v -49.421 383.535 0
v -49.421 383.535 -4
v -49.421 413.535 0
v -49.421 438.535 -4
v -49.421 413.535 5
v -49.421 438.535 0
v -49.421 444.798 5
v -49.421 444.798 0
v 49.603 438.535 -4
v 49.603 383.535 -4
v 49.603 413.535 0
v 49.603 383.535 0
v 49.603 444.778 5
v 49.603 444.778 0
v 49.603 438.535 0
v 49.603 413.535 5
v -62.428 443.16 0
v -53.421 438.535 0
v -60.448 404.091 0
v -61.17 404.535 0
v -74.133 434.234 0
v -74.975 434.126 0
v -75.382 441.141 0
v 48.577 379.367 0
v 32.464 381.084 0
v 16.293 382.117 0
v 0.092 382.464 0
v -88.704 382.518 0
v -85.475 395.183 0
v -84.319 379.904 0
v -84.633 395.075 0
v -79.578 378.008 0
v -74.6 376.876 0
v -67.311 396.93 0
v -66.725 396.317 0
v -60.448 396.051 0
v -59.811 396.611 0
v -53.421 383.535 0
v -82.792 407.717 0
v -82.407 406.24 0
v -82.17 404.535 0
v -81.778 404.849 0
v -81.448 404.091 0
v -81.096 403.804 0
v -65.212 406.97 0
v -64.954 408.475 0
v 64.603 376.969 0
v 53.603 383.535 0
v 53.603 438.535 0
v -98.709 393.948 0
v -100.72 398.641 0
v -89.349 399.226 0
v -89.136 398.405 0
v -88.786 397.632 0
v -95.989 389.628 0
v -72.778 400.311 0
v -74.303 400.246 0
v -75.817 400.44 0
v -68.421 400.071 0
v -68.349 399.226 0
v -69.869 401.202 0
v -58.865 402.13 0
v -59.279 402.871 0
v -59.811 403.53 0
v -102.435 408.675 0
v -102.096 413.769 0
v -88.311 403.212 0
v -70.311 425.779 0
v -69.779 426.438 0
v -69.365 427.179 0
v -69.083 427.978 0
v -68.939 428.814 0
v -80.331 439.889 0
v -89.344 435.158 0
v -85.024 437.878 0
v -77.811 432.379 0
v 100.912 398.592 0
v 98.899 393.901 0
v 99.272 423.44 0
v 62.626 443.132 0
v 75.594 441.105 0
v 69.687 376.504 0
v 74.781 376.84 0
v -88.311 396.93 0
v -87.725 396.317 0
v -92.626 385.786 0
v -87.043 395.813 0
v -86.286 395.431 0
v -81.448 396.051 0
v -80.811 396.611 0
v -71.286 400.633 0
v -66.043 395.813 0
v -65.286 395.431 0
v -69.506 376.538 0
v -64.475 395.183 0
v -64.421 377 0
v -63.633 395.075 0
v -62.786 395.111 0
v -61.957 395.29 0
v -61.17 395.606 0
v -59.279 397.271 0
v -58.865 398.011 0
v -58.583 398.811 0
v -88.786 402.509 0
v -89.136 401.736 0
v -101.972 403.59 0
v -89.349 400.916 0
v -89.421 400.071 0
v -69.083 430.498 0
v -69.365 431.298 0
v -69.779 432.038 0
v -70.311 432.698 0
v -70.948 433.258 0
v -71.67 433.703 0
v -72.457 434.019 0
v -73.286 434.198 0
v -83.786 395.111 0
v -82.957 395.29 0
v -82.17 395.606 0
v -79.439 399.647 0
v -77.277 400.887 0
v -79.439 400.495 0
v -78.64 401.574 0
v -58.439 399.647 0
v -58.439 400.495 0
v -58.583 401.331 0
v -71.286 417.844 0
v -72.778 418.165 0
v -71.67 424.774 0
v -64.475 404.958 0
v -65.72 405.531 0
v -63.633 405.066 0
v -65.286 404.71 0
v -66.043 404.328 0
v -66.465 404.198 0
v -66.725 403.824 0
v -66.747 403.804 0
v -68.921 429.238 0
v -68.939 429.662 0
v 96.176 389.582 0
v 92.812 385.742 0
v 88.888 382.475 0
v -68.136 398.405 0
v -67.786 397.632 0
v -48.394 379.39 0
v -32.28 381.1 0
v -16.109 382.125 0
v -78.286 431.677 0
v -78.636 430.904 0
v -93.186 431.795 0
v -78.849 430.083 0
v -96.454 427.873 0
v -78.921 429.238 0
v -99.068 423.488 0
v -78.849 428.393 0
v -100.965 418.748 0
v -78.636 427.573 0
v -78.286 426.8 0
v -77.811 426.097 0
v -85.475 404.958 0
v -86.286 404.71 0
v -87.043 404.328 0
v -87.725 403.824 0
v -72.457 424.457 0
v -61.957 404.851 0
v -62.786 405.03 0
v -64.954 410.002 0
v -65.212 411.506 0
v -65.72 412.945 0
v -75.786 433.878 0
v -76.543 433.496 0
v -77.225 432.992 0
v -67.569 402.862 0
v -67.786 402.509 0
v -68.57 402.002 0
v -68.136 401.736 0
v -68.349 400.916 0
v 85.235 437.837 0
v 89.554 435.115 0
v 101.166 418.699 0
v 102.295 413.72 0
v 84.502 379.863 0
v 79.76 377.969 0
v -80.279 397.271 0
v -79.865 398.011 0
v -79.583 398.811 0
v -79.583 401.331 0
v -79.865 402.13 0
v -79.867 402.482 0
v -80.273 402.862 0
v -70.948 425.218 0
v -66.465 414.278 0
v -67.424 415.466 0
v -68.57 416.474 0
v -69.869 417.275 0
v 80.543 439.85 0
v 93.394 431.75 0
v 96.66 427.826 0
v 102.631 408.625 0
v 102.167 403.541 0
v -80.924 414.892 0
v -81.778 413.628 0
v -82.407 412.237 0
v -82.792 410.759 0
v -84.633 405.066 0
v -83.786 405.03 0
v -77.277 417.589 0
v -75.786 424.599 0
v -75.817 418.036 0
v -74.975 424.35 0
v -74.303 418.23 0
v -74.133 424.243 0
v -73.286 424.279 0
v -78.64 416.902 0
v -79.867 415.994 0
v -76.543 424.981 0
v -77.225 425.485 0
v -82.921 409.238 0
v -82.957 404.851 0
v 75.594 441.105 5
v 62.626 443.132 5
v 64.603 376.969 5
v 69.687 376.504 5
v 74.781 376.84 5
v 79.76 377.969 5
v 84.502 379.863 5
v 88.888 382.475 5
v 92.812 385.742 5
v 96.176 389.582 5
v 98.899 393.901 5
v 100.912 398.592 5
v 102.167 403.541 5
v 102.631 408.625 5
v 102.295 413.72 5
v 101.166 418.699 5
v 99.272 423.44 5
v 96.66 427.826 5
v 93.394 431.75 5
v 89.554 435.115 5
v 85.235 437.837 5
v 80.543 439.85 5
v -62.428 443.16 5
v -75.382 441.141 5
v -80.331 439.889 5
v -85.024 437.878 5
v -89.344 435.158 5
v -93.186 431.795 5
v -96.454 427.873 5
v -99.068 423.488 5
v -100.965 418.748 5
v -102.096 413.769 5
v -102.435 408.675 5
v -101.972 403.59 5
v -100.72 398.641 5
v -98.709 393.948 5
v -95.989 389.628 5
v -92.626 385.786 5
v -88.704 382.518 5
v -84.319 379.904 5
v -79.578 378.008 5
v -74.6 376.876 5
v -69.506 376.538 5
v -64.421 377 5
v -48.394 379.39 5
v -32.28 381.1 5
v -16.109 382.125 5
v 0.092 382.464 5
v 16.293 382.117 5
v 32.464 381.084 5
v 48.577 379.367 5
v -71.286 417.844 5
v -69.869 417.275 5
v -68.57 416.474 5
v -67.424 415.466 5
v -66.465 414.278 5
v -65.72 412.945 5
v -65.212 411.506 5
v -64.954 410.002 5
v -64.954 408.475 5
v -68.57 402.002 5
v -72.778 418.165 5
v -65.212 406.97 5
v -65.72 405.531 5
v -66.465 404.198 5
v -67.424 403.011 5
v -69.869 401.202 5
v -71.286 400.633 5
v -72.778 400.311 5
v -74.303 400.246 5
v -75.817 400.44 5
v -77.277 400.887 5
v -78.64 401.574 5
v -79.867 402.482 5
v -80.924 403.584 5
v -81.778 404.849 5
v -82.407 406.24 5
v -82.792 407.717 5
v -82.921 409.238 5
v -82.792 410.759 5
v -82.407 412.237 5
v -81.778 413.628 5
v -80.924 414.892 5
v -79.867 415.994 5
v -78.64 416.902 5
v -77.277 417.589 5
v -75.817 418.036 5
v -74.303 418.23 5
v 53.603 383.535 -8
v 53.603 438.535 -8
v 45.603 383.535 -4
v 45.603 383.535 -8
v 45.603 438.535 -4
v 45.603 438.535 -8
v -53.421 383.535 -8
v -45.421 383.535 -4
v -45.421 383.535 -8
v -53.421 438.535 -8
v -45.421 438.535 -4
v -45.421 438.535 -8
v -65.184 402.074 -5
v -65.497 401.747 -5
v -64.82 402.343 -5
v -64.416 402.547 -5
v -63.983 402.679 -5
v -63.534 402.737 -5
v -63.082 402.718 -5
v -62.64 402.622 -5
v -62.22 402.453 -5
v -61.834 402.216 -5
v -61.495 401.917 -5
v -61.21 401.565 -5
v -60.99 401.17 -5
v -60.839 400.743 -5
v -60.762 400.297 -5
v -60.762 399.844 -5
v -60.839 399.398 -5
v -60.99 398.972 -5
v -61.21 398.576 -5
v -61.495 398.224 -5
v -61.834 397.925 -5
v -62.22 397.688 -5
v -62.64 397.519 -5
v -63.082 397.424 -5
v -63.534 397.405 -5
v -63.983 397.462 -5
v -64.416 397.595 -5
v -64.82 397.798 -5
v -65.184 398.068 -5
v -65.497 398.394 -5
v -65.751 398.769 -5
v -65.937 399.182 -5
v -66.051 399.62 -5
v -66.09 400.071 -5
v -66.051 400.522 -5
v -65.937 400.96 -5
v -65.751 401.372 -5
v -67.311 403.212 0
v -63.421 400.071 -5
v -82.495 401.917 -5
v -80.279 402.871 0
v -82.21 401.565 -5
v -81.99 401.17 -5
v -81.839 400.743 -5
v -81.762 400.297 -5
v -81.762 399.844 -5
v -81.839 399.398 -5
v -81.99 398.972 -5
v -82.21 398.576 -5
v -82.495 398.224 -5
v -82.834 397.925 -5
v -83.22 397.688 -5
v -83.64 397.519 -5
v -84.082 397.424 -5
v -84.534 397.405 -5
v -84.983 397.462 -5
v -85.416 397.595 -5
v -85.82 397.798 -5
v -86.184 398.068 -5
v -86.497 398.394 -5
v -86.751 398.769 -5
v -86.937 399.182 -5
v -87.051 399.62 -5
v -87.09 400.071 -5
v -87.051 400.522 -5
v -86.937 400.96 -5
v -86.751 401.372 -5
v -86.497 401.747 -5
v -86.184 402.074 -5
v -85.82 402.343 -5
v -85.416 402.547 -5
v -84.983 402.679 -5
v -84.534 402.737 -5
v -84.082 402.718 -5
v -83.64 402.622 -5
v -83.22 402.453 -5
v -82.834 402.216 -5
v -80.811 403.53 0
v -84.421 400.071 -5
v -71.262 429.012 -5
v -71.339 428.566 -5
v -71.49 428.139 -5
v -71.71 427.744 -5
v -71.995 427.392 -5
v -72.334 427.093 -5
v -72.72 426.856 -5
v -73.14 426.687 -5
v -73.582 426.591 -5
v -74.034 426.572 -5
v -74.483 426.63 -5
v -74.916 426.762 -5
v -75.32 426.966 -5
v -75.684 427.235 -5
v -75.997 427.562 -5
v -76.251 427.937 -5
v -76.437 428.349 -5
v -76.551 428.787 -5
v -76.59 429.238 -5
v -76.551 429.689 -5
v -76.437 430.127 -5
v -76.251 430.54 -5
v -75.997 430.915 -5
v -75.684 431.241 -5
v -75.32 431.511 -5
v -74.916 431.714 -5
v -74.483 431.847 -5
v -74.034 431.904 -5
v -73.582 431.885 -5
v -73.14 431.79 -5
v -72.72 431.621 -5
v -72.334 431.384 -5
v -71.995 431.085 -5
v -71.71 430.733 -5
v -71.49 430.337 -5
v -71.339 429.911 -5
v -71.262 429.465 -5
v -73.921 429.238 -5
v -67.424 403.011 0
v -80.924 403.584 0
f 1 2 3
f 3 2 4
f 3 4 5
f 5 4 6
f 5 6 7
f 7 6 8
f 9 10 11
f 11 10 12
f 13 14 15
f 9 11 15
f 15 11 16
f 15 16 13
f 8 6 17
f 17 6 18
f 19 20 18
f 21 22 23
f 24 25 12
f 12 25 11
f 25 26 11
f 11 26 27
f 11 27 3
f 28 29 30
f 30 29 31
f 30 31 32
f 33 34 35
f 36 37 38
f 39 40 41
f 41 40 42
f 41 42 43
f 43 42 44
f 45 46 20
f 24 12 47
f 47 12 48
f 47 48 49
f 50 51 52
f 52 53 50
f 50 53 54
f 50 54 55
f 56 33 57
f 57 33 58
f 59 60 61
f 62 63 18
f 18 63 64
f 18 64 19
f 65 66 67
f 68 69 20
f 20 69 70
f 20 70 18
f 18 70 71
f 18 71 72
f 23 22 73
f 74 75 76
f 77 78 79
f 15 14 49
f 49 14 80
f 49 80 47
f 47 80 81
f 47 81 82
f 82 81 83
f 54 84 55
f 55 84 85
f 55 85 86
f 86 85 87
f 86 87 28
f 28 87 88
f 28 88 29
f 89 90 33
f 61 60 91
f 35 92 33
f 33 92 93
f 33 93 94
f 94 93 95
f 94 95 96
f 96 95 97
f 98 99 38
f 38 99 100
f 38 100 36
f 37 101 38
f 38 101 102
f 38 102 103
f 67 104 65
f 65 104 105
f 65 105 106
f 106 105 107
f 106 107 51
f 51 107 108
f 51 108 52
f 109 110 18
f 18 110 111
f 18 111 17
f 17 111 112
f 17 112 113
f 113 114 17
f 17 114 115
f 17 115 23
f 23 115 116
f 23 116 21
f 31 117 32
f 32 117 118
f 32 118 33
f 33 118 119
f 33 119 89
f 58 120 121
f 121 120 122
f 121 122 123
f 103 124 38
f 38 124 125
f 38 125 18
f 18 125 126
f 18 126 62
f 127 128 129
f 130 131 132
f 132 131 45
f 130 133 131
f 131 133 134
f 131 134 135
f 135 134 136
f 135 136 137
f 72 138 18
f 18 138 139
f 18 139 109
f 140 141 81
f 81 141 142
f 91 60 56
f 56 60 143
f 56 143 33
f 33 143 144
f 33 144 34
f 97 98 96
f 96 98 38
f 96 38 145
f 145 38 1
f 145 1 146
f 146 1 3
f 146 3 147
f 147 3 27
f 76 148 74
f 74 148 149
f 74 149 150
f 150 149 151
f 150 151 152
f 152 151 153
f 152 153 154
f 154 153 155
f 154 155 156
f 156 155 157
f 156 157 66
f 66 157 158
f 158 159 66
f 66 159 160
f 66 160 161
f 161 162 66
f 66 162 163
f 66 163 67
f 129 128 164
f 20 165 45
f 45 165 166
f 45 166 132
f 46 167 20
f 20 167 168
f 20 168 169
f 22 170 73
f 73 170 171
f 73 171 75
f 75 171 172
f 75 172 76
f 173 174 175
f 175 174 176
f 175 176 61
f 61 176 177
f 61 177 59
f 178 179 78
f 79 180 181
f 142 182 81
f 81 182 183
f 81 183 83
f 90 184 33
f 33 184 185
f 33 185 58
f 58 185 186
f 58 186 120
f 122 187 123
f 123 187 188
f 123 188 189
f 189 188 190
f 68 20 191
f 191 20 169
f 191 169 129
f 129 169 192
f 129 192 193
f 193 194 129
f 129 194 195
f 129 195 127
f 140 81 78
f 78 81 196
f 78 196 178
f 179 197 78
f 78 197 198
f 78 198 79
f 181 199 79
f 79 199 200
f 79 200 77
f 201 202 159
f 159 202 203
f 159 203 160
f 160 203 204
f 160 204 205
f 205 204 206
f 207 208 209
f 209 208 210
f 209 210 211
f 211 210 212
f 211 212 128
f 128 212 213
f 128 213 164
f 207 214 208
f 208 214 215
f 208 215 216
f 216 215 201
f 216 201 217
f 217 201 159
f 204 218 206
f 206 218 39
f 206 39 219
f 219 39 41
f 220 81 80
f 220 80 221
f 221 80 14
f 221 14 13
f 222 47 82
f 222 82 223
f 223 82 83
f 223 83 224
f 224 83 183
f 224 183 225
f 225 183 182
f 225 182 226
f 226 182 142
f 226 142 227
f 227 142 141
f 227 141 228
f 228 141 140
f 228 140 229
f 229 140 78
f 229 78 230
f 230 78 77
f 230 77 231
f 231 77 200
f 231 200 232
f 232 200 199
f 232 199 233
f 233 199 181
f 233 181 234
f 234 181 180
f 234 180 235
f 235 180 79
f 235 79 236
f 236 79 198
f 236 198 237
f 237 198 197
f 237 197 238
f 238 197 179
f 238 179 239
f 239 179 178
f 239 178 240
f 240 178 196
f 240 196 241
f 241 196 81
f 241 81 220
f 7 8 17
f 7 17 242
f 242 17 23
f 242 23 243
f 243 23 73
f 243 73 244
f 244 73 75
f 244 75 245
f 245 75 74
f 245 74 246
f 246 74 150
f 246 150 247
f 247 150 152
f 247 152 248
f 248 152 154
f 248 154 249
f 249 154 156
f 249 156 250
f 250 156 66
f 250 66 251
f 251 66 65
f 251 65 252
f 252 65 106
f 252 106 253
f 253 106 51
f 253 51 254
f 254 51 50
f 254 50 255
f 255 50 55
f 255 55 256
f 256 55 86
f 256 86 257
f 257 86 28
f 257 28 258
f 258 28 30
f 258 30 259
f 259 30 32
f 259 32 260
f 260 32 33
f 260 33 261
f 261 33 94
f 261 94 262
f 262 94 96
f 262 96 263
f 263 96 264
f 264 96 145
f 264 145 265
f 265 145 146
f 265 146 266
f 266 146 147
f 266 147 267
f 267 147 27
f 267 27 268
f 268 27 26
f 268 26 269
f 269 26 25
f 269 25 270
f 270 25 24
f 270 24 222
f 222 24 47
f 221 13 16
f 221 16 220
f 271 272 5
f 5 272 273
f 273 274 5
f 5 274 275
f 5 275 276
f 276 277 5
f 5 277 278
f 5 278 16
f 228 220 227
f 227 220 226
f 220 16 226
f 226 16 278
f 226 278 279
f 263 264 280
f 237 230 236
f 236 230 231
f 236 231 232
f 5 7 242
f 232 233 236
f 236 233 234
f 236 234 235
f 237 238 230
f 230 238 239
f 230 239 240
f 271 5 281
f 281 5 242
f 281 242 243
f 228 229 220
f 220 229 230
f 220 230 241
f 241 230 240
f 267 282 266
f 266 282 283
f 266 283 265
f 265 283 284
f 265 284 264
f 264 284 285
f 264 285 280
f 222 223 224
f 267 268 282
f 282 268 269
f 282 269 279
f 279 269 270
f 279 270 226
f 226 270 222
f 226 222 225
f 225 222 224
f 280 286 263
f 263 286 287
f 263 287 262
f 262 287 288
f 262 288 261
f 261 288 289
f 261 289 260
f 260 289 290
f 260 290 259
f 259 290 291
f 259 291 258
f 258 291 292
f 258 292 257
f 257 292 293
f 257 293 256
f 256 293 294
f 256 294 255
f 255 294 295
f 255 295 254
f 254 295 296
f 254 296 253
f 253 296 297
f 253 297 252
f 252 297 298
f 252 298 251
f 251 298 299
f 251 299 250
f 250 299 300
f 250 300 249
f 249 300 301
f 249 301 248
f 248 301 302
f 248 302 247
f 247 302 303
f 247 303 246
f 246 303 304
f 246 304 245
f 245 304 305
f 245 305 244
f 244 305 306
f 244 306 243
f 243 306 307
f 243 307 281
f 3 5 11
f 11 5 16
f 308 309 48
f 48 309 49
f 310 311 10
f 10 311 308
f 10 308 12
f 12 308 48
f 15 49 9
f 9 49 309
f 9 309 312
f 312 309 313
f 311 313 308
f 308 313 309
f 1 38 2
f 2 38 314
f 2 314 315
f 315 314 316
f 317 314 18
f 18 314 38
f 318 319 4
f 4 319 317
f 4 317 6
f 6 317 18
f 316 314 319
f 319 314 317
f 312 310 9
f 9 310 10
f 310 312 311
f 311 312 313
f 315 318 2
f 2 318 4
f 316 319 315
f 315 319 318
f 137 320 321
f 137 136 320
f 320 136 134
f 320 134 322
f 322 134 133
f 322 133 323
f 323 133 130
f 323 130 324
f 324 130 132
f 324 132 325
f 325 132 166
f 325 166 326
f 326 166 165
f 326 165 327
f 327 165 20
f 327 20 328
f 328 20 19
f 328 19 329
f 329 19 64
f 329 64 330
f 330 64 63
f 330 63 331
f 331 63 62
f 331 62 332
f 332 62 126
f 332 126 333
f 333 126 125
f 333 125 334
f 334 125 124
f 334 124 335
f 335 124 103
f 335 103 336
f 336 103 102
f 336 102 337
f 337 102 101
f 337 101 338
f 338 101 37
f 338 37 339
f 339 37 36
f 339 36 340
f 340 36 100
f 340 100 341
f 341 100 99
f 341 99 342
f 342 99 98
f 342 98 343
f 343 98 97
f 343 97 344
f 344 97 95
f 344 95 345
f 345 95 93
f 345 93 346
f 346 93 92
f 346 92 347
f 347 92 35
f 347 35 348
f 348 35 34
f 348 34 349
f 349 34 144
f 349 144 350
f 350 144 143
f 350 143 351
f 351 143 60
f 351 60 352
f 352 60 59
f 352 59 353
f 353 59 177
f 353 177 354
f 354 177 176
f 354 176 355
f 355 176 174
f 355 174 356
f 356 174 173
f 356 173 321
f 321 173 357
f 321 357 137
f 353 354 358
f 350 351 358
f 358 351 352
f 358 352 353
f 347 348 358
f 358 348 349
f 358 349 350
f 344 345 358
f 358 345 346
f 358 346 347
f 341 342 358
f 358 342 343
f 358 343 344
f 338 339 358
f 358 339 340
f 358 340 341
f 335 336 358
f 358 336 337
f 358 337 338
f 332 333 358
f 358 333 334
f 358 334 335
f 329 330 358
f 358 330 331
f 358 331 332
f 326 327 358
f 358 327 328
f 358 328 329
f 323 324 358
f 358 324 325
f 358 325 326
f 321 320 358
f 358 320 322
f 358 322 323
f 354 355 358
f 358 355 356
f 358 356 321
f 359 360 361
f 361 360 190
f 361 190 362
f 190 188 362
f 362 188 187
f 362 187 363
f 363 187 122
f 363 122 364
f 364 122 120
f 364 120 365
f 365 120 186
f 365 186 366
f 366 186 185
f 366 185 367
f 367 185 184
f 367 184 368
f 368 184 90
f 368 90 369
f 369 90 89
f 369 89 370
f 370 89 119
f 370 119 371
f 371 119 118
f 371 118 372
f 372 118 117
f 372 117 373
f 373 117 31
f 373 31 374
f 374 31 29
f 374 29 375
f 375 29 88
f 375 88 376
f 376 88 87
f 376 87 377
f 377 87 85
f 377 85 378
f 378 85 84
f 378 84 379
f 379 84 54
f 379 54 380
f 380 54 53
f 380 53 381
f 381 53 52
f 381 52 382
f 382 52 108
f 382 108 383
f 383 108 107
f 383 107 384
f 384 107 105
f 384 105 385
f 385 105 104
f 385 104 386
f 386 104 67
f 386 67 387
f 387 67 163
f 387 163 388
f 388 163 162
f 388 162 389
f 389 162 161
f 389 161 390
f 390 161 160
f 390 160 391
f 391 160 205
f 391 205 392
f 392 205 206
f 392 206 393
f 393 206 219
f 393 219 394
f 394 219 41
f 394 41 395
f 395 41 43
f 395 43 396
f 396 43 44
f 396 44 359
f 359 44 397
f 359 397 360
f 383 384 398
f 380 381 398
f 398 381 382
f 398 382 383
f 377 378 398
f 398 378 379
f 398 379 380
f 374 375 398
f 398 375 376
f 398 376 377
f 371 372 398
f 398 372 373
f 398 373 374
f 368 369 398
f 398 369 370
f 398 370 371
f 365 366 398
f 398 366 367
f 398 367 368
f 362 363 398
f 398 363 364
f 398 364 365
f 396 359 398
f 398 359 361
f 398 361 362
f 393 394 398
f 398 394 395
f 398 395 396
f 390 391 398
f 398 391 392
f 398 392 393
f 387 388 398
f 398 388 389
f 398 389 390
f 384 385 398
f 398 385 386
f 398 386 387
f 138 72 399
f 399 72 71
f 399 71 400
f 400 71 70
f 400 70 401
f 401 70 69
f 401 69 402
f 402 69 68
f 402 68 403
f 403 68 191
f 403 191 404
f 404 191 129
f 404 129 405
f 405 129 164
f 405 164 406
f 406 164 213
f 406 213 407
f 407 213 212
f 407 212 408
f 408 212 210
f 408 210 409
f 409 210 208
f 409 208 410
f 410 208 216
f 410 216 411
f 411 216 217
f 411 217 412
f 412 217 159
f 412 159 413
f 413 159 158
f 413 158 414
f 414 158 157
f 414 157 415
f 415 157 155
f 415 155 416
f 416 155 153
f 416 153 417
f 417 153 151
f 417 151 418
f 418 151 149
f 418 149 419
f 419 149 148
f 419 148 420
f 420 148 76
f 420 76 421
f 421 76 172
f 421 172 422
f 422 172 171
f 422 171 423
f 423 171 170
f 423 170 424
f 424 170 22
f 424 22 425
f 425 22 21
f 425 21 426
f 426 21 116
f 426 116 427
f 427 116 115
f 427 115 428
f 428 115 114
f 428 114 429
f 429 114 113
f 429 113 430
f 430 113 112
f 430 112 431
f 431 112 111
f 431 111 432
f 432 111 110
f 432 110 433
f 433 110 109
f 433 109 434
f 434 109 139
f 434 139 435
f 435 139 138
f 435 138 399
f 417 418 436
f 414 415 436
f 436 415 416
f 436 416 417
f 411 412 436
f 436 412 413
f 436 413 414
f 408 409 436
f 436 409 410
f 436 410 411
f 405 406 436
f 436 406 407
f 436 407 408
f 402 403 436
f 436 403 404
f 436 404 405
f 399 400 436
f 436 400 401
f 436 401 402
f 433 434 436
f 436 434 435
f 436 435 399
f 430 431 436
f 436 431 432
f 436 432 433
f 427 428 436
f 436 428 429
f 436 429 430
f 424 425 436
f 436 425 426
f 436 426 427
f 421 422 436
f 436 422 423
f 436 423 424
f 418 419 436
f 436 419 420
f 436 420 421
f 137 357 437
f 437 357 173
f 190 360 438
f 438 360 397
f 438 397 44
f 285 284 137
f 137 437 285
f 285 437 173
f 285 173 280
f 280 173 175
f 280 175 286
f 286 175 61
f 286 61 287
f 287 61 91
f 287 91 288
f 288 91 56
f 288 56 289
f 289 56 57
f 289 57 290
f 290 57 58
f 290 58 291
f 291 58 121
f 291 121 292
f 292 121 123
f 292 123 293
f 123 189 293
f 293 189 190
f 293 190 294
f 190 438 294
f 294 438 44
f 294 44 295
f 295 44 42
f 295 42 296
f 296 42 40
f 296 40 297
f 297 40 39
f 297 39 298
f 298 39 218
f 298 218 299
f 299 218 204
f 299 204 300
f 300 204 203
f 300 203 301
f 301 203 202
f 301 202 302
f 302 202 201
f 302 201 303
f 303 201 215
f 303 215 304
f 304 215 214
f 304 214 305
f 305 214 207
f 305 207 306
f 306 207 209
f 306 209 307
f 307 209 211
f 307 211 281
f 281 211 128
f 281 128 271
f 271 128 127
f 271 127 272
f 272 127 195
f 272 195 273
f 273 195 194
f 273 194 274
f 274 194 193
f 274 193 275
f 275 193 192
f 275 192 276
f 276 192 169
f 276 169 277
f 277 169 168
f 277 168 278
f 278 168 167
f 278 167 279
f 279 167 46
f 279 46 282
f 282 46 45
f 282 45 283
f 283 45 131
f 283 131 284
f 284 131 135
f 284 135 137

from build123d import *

# Parameters (mm, degrees)
BOSS_EXTRU_1_DEPTH           = 5
ESQUISSE14_W                 = 99.024162062
ESQUISSE14_H                 = 34
ENL_V_MAT_EXTRU_3_DEPTH      = 10
ESQUISSE15_W                 = 4
ESQUISSE15_H                 = 55
BOSS_EXTRU_2_DEPTH           = 8
ESQUISSE16_W                 = 4
ESQUISSE16_H                 = 55
BOSS_EXTRU_3_DEPTH           = 4
ESQUISSE17_W                 = 4
ESQUISSE17_H                 = 55
BOSS_EXTRU_4_DEPTH           = 4
ESQUISSE18_R                 = 5
BOSS_EXTRU_5_DEPTH           = 5
BOSS_EXTRU_5_DRAFT           = 25
BOSS_EXTRU_5_PROFILE_2_DEPTH = 5
BOSS_EXTRU_5_PROFILE_2_DRAFT = 25
BOSS_EXTRU_5_PROFILE_3_DEPTH = 5
BOSS_EXTRU_5_PROFILE_3_DRAFT = 25
ESQUISSE19_R                 = 9
ENL_V_MAT_EXTRU_4_DEPTH      = 5


with BuildPart() as part:
    # Esquisse3 → Boss.-Extru.1 (new body)
    with BuildSketch(Plane.XY):
        with BuildLine():
            ThreePointArc((75.594209632, 441.104915907), (0.107839882, 447.535495506), (-75.381620177, 441.141295626))
            ThreePointArc((-75.381620177, 441.141295626), (-101.972084627, 403.590452402), (-64.421241404, 376.999987952))
            ThreePointArc((-64.421241404, 376.999987952), (0.092160118, 382.464480398), (64.602920658, 376.968897791))
            ThreePointArc((64.602920658, 376.968897791), (102.166574203, 403.541262362), (75.594209632, 441.104915907))
        make_face()
    extrude(amount=BOSS_EXTRU_1_DEPTH)

    # Esquisse14 → Enlèv. mat.-Extru.3 (cut)
    with BuildSketch(Plane(origin=(0, 0, 0), x_dir=(-1, 0, 0), z_dir=(0, 0, -1))):
        with Locations((-0.090839627, 430.535495506)):
            Rectangle(ESQUISSE14_W, ESQUISSE14_H)
    extrude(amount=-ENL_V_MAT_EXTRU_3_DEPTH, mode=Mode.SUBTRACT)


with BuildPart() as body_2:
    # of the pieces the cut leaves, the one that is kept (enl_v_mat_extru_3_keep)
    add(part.part.solids().sort_by_distance((64.602920658, 376.968897791, 0))[0])

    # Esquisse15 → Boss.-Extru.2 (add)
    with BuildSketch(Plane(origin=(0, 0, 0), x_dir=(-1, 0, 0), z_dir=(0, 0, -1))):
        with Locations((-51.602920658, 411.035495506)):
            Rectangle(ESQUISSE15_W, ESQUISSE15_H)
        with Locations((51.421241404, 411.035495506)):
            Rectangle(ESQUISSE15_W, ESQUISSE15_H)
    extrude(amount=BOSS_EXTRU_2_DEPTH)

    # Esquisse16 → Boss.-Extru.3 (add)
    with BuildSketch(Plane.ZY.offset(-49.602920658)):
        with Locations((-6, 411.035495506)):
            Rectangle(ESQUISSE16_W, ESQUISSE16_H)
    extrude(amount=BOSS_EXTRU_3_DEPTH)

    # Esquisse17 → Boss.-Extru.4 (add)
    with BuildSketch(Plane(origin=(-49.421241404, 0, 0), x_dir=(0, 0, -1), z_dir=(1, 0, 0))):
        with Locations((6, 411.035495506)):
            Rectangle(ESQUISSE17_W, ESQUISSE17_H)
    extrude(amount=BOSS_EXTRU_4_DEPTH)


with BuildPart() as boss_extru_5_tool:
    # Esquisse18 → Boss.-Extru.5 (with draft: the straight prism first)
    with BuildSketch(Plane(origin=(0, 0, 0), x_dir=(-1, 0, 0), z_dir=(0, 0, -1))):
        with Locations((63.421241404, 400.070641789)):
            Circle(ESQUISSE18_R)
    extrude(amount=BOSS_EXTRU_5_DEPTH)
    # Boss.-Extru.5: the draft: its side faces are tilted about the plane it starts from
    boss_extru_5_sides = [boss_extru_5_tool.faces().sort_by_distance(p)[0] for p in [
        (-58.421241404, 400.070641789, -2.5),
    ]]
    draft(boss_extru_5_sides, Plane(origin=(0, 0, 0), x_dir=(-1, 0, 0), z_dir=(0, 0, -1)), BOSS_EXTRU_5_DRAFT)


with BuildPart() as body_2_1:
    add(body_2.part)

    # Boss.-Extru.5: add boss_extru_5_tool
    add(boss_extru_5_tool.part)


with BuildPart() as boss_extru_5_profile_2_tool:
    # Esquisse18 → Boss.-Extru.5 profile 2 (with draft: the straight prism first)
    with BuildSketch(Plane(origin=(0, 0, 0), x_dir=(-1, 0, 0), z_dir=(0, 0, -1))):
        with Locations((84.421241404, 400.070641789)):
            Circle(ESQUISSE18_R)
    extrude(amount=BOSS_EXTRU_5_PROFILE_2_DEPTH)
    # Boss.-Extru.5 profile 2: the draft: its side faces are tilted about the plane it starts from
    boss_extru_5_profile_2_sides = [boss_extru_5_profile_2_tool.faces().sort_by_distance(p)[0] for p in [
        (-79.421241404, 400.070641789, -2.5),
    ]]
    draft(boss_extru_5_profile_2_sides, Plane(origin=(0, 0, 0), x_dir=(-1, 0, 0), z_dir=(0, 0, -1)), BOSS_EXTRU_5_PROFILE_2_DRAFT)


with BuildPart() as body_2_2:
    add(body_2_1.part)

    # Boss.-Extru.5 profile 2: add boss_extru_5_profile_2_tool
    add(boss_extru_5_profile_2_tool.part)


with BuildPart() as boss_extru_5_profile_3_tool:
    # Esquisse18 → Boss.-Extru.5 profile 3 (with draft: the straight prism first)
    with BuildSketch(Plane(origin=(0, 0, 0), x_dir=(-1, 0, 0), z_dir=(0, 0, -1))):
        with Locations((73.921241404, 429.238260821)):
            Circle(ESQUISSE18_R)
    extrude(amount=BOSS_EXTRU_5_PROFILE_3_DEPTH)
    # Boss.-Extru.5 profile 3: the draft: its side faces are tilted about the plane it starts from
    boss_extru_5_profile_3_sides = [boss_extru_5_profile_3_tool.faces().sort_by_distance(p)[0] for p in [
        (-68.921241404, 429.238260821, -2.5),
    ]]
    draft(boss_extru_5_profile_3_sides, Plane(origin=(0, 0, 0), x_dir=(-1, 0, 0), z_dir=(0, 0, -1)), BOSS_EXTRU_5_PROFILE_3_DRAFT)


with BuildPart() as body_2_3:
    add(body_2_2.part)

    # Boss.-Extru.5 profile 3: add boss_extru_5_profile_3_tool
    add(boss_extru_5_profile_3_tool.part)

    # Esquisse19 → Enlèv. mat.-Extru.4 (cut)
    with BuildSketch(Plane(origin=(0, 0, 0), x_dir=(-1, 0, 0), z_dir=(0, 0, -1))):
        with Locations((73.921241404, 409.238260821)):
            Circle(ESQUISSE19_R)
    extrude(amount=-ENL_V_MAT_EXTRU_4_DEPTH, mode=Mode.SUBTRACT)


solid = body_2_3.part
